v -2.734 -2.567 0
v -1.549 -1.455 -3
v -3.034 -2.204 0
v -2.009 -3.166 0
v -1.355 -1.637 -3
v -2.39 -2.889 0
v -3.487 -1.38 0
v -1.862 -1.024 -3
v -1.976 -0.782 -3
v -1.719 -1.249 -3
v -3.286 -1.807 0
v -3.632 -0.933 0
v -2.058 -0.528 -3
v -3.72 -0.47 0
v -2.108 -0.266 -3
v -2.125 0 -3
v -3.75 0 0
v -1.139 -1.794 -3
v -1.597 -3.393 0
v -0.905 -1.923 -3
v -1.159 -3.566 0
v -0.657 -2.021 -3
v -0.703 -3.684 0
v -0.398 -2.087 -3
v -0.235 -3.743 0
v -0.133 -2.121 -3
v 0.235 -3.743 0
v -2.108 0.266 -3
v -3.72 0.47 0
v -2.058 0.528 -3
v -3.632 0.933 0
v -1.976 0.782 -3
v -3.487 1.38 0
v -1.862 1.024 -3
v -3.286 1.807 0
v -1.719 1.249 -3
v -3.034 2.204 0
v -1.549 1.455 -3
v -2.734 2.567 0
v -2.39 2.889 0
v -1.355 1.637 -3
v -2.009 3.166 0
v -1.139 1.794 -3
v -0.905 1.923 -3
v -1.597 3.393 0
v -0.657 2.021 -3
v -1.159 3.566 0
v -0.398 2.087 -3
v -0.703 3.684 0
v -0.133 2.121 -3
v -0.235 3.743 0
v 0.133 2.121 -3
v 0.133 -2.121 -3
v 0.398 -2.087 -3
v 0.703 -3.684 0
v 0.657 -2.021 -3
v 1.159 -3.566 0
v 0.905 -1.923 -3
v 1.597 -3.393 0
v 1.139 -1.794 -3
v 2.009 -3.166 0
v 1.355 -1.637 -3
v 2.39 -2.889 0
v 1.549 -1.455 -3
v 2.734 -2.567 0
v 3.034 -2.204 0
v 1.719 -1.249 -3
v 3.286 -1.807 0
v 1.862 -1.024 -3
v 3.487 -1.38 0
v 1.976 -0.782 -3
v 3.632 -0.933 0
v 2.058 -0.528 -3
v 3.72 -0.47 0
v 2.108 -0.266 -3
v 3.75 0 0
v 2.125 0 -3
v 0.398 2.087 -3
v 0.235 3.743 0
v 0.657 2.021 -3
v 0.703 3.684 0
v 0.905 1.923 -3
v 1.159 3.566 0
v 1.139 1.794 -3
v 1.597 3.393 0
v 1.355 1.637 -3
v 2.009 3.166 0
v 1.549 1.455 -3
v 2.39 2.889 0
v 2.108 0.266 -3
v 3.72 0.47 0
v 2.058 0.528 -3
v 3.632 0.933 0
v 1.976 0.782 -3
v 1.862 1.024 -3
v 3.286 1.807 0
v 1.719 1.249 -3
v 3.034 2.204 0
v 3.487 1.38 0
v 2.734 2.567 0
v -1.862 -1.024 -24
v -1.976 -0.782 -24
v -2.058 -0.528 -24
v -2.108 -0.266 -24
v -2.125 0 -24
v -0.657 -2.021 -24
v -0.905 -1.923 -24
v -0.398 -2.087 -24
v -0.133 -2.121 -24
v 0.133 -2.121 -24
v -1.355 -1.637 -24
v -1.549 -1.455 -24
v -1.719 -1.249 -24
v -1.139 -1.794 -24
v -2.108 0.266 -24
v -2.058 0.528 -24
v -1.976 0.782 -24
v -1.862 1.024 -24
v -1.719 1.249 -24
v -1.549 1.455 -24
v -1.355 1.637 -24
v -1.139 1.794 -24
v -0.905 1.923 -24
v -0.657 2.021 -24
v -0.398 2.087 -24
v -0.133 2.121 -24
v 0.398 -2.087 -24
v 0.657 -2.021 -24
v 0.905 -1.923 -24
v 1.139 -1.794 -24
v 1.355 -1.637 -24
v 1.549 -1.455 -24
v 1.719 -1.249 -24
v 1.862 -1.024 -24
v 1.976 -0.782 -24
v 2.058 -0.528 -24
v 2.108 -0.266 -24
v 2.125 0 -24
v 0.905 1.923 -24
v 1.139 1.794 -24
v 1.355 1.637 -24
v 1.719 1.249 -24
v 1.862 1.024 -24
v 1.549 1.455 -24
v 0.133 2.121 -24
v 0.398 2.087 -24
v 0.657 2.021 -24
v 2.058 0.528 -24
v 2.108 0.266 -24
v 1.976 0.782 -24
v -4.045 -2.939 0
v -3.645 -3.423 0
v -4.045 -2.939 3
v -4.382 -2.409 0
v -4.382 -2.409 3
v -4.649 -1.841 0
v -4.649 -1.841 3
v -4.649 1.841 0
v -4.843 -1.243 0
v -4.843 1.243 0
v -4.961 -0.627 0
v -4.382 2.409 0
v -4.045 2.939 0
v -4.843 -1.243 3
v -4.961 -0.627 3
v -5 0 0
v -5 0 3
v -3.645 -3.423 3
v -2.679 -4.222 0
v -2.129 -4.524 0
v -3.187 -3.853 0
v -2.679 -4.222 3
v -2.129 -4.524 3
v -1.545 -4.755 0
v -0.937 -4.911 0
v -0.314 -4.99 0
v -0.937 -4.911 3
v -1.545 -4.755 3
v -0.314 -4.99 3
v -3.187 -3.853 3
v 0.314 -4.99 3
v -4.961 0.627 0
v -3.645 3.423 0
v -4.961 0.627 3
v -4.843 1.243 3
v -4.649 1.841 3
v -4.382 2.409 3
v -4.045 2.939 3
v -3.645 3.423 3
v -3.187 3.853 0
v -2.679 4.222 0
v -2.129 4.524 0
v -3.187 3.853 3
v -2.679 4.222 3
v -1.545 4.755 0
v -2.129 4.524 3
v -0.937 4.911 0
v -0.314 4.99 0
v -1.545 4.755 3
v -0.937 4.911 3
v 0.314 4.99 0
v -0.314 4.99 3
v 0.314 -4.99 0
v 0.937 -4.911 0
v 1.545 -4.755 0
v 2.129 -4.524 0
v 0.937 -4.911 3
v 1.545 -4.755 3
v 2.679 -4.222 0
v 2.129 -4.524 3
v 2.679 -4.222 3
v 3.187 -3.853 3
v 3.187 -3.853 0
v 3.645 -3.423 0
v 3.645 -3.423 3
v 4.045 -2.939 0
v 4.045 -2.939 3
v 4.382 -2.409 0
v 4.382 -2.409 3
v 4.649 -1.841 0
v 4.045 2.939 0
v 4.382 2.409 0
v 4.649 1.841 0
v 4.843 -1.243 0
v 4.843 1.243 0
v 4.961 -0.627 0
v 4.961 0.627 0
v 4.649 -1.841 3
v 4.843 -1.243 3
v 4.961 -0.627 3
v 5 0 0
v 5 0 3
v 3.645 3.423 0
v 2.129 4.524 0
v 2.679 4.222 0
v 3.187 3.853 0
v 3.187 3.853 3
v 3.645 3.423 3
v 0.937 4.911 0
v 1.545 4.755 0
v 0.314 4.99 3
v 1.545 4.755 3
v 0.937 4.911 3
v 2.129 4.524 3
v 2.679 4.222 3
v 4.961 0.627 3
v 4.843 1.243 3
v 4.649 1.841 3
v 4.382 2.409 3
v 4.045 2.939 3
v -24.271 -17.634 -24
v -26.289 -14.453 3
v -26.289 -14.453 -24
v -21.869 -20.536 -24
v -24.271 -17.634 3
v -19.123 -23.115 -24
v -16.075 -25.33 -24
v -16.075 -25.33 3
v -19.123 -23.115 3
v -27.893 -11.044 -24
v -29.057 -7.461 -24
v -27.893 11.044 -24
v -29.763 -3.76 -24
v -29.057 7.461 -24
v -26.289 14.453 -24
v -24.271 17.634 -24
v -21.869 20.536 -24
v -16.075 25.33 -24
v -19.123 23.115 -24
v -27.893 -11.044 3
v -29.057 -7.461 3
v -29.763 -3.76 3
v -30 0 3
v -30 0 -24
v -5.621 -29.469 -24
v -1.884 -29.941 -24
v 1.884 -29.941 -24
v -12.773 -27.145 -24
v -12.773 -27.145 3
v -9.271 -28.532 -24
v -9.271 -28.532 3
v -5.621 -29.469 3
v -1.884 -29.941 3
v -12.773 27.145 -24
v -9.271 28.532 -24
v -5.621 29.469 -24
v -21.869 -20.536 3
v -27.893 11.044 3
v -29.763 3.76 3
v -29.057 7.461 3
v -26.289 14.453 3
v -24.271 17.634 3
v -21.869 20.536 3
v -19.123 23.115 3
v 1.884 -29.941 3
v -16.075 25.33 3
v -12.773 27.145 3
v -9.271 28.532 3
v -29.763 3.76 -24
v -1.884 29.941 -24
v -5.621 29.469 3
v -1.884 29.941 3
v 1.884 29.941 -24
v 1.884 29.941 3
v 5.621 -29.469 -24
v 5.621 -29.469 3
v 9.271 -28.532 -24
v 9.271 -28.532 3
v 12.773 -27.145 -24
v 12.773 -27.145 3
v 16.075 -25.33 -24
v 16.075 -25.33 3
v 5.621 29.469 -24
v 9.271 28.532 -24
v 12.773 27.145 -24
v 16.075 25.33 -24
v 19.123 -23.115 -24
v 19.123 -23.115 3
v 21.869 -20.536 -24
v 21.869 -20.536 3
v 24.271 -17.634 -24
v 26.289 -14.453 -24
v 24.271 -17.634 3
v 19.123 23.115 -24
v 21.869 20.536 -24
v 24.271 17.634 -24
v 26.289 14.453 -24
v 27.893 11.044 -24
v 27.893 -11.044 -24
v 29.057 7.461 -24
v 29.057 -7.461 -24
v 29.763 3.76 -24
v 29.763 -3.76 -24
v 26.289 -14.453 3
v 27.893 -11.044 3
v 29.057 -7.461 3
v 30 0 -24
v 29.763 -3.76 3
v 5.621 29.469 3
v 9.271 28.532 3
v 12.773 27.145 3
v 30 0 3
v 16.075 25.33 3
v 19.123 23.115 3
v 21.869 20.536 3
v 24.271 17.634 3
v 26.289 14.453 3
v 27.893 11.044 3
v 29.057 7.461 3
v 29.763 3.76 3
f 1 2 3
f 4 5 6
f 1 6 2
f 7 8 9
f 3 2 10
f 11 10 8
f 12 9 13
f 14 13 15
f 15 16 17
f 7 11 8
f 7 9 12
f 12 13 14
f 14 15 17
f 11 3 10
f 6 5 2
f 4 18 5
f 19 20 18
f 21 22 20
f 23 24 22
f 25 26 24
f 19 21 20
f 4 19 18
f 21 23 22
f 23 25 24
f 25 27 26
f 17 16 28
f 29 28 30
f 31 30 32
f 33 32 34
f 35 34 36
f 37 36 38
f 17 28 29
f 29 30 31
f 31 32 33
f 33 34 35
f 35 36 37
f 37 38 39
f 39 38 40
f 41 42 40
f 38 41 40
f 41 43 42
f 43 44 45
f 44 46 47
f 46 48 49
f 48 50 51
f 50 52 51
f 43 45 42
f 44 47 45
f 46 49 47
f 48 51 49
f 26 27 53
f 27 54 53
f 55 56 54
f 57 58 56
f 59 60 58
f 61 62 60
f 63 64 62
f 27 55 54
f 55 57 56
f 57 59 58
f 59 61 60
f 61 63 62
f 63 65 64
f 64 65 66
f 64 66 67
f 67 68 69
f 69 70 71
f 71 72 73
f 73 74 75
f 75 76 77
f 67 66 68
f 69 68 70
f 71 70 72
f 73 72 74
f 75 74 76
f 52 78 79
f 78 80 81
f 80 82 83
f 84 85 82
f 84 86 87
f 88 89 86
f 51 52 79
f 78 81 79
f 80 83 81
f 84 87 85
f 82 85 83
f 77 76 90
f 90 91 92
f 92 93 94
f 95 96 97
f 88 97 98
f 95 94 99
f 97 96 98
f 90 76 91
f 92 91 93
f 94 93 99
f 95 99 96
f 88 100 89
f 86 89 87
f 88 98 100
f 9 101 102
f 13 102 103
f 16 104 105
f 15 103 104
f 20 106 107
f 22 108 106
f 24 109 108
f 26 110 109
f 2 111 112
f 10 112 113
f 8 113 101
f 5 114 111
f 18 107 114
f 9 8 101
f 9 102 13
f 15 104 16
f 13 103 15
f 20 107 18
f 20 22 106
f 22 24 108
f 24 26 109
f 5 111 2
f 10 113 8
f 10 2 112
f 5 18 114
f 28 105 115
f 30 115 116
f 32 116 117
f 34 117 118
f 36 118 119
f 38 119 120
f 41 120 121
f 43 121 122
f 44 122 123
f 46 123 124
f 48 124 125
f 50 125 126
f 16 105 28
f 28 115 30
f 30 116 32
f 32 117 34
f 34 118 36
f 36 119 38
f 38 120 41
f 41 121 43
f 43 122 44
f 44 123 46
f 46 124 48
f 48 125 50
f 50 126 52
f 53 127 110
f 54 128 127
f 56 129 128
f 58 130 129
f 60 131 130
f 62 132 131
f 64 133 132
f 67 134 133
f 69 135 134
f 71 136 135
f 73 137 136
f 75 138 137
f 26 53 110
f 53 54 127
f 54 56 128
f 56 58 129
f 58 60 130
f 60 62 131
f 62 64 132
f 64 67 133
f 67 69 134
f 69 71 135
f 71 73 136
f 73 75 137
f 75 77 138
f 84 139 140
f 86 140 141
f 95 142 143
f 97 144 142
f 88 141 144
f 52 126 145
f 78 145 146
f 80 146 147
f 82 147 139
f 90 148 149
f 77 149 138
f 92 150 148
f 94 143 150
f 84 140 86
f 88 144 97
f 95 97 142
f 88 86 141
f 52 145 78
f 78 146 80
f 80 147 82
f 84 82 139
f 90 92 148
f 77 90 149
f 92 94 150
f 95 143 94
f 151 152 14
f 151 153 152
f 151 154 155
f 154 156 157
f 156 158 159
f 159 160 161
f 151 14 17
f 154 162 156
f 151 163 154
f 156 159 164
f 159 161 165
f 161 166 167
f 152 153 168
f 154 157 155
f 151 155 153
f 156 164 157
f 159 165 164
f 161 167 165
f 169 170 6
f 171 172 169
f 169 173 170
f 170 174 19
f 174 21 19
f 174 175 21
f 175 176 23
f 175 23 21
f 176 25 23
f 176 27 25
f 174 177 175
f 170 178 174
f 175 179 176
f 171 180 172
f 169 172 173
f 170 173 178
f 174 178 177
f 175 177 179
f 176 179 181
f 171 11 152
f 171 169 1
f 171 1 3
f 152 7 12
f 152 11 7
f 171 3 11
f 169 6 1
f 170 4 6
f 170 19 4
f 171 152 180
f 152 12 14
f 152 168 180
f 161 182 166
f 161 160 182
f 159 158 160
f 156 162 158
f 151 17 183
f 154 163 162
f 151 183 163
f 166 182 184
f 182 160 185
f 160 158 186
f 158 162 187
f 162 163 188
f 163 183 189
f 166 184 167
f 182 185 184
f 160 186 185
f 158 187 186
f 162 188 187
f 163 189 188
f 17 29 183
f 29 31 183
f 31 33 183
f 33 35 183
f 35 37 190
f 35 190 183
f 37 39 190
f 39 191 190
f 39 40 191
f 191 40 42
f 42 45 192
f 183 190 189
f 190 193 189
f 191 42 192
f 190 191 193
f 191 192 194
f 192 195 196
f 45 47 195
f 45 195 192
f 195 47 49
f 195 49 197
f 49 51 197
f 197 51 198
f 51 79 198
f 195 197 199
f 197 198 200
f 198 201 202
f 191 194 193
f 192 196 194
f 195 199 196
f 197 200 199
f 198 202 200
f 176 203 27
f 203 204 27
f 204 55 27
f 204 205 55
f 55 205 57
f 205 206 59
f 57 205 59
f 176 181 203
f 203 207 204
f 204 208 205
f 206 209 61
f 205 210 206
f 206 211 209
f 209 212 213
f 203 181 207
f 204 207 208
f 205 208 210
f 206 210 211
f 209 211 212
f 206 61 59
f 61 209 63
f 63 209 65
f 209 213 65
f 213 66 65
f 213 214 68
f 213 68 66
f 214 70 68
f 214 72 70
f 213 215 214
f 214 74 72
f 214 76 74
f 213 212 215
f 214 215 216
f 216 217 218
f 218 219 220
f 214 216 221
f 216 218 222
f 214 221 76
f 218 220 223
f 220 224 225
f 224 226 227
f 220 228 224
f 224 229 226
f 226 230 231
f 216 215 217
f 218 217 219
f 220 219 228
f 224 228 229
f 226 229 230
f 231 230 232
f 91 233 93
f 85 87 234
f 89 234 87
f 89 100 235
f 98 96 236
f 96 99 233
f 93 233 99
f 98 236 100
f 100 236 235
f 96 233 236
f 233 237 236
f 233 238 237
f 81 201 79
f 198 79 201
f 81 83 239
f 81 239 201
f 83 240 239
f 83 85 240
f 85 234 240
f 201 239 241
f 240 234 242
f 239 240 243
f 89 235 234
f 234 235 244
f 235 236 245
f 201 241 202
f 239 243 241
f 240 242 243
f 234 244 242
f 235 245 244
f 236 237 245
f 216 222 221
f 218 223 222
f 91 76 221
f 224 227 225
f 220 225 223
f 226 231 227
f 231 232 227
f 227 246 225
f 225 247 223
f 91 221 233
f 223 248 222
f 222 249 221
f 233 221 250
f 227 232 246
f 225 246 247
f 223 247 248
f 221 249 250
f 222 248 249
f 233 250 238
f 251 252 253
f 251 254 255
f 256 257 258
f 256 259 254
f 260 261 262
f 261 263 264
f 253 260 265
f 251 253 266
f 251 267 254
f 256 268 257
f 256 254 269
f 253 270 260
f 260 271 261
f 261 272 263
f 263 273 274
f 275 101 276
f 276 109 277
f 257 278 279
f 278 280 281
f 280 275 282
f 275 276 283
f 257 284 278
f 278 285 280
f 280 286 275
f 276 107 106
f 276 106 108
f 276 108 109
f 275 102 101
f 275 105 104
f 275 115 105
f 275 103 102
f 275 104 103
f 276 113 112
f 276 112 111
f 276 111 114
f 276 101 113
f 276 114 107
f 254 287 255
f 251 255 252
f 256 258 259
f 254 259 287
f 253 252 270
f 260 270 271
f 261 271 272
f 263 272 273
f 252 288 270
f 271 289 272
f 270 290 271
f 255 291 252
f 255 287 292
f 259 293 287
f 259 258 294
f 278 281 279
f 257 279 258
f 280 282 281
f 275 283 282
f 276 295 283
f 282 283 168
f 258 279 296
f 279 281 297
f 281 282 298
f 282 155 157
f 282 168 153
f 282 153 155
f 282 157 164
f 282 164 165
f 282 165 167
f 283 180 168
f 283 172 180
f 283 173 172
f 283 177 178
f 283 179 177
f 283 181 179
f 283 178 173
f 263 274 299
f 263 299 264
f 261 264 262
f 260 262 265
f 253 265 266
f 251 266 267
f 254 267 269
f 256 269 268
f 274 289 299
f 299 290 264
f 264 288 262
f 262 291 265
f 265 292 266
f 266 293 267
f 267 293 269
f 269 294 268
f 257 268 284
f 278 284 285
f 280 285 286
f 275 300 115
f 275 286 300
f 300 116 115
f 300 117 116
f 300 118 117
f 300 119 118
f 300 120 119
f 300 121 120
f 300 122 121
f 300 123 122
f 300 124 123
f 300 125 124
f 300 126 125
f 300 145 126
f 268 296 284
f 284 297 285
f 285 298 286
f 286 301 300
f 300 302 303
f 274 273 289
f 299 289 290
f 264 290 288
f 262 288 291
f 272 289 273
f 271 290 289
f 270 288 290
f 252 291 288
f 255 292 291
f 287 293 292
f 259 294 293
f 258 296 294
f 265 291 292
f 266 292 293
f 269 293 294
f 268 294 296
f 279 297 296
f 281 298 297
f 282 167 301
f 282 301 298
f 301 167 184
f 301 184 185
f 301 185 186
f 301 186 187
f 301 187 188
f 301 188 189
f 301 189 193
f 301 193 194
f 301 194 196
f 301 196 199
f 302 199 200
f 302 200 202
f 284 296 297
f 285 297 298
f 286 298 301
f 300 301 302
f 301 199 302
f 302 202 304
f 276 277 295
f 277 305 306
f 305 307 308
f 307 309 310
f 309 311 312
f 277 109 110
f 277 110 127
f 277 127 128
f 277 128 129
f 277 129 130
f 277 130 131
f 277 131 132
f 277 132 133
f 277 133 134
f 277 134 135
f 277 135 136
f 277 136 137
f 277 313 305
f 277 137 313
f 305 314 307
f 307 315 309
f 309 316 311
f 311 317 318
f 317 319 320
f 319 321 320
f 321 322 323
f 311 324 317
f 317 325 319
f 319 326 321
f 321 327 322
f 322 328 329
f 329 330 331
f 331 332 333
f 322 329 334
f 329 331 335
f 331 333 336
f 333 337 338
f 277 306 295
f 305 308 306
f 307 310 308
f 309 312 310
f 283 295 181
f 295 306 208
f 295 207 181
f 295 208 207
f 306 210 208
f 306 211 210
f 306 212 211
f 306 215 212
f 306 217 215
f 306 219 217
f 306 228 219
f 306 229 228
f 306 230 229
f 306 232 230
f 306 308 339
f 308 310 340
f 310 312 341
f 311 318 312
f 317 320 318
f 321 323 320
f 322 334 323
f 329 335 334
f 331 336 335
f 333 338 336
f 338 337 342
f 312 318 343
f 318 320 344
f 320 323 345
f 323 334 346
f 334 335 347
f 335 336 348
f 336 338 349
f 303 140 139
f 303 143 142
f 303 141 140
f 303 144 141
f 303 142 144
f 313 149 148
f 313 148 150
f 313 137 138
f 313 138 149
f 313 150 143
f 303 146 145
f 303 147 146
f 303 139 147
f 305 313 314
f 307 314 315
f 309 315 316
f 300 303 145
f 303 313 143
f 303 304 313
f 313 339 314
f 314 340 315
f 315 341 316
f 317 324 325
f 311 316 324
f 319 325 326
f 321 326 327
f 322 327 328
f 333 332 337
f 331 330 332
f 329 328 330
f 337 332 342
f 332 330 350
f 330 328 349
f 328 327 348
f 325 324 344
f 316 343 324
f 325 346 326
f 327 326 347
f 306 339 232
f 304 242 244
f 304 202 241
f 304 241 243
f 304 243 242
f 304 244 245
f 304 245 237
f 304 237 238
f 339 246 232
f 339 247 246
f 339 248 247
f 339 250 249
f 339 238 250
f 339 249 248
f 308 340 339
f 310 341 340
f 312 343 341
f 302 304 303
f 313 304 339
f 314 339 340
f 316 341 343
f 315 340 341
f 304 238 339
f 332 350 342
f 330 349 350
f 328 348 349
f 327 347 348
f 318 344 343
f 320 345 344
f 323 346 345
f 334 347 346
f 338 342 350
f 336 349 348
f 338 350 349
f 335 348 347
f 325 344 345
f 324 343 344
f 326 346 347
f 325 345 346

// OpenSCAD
$fn = 50;

difference() {
	union() {
		translate(v = [0, 0, -24.0]) {
			cylinder(h = 27, r = 30.0);
		}
	}
	union() {
		translate(v = [0, 0, 0]) {
			rotate(a = [0, 0, 0]) {
				difference() {
					union() {
						translate(v = [0, 0, -27.0]) {
							cylinder(h = 27, r = 2.0);
						}
						translate(v = [0, 0, -3]) {
							cylinder(h = 3, r1 = 2.125, r2 = 3.75);
						}
						translate(v = [0, 0, -27.0]) {
							cylinder(h = 27, r = 2.125);
						}
						translate(v = [0, 0, -27.0]) {
							cylinder(h = 27, r = 2.0);
						}
					}
					union();
				}
			}
		}
		#cylinder(h = 3, r = 5.0);
	}
}
